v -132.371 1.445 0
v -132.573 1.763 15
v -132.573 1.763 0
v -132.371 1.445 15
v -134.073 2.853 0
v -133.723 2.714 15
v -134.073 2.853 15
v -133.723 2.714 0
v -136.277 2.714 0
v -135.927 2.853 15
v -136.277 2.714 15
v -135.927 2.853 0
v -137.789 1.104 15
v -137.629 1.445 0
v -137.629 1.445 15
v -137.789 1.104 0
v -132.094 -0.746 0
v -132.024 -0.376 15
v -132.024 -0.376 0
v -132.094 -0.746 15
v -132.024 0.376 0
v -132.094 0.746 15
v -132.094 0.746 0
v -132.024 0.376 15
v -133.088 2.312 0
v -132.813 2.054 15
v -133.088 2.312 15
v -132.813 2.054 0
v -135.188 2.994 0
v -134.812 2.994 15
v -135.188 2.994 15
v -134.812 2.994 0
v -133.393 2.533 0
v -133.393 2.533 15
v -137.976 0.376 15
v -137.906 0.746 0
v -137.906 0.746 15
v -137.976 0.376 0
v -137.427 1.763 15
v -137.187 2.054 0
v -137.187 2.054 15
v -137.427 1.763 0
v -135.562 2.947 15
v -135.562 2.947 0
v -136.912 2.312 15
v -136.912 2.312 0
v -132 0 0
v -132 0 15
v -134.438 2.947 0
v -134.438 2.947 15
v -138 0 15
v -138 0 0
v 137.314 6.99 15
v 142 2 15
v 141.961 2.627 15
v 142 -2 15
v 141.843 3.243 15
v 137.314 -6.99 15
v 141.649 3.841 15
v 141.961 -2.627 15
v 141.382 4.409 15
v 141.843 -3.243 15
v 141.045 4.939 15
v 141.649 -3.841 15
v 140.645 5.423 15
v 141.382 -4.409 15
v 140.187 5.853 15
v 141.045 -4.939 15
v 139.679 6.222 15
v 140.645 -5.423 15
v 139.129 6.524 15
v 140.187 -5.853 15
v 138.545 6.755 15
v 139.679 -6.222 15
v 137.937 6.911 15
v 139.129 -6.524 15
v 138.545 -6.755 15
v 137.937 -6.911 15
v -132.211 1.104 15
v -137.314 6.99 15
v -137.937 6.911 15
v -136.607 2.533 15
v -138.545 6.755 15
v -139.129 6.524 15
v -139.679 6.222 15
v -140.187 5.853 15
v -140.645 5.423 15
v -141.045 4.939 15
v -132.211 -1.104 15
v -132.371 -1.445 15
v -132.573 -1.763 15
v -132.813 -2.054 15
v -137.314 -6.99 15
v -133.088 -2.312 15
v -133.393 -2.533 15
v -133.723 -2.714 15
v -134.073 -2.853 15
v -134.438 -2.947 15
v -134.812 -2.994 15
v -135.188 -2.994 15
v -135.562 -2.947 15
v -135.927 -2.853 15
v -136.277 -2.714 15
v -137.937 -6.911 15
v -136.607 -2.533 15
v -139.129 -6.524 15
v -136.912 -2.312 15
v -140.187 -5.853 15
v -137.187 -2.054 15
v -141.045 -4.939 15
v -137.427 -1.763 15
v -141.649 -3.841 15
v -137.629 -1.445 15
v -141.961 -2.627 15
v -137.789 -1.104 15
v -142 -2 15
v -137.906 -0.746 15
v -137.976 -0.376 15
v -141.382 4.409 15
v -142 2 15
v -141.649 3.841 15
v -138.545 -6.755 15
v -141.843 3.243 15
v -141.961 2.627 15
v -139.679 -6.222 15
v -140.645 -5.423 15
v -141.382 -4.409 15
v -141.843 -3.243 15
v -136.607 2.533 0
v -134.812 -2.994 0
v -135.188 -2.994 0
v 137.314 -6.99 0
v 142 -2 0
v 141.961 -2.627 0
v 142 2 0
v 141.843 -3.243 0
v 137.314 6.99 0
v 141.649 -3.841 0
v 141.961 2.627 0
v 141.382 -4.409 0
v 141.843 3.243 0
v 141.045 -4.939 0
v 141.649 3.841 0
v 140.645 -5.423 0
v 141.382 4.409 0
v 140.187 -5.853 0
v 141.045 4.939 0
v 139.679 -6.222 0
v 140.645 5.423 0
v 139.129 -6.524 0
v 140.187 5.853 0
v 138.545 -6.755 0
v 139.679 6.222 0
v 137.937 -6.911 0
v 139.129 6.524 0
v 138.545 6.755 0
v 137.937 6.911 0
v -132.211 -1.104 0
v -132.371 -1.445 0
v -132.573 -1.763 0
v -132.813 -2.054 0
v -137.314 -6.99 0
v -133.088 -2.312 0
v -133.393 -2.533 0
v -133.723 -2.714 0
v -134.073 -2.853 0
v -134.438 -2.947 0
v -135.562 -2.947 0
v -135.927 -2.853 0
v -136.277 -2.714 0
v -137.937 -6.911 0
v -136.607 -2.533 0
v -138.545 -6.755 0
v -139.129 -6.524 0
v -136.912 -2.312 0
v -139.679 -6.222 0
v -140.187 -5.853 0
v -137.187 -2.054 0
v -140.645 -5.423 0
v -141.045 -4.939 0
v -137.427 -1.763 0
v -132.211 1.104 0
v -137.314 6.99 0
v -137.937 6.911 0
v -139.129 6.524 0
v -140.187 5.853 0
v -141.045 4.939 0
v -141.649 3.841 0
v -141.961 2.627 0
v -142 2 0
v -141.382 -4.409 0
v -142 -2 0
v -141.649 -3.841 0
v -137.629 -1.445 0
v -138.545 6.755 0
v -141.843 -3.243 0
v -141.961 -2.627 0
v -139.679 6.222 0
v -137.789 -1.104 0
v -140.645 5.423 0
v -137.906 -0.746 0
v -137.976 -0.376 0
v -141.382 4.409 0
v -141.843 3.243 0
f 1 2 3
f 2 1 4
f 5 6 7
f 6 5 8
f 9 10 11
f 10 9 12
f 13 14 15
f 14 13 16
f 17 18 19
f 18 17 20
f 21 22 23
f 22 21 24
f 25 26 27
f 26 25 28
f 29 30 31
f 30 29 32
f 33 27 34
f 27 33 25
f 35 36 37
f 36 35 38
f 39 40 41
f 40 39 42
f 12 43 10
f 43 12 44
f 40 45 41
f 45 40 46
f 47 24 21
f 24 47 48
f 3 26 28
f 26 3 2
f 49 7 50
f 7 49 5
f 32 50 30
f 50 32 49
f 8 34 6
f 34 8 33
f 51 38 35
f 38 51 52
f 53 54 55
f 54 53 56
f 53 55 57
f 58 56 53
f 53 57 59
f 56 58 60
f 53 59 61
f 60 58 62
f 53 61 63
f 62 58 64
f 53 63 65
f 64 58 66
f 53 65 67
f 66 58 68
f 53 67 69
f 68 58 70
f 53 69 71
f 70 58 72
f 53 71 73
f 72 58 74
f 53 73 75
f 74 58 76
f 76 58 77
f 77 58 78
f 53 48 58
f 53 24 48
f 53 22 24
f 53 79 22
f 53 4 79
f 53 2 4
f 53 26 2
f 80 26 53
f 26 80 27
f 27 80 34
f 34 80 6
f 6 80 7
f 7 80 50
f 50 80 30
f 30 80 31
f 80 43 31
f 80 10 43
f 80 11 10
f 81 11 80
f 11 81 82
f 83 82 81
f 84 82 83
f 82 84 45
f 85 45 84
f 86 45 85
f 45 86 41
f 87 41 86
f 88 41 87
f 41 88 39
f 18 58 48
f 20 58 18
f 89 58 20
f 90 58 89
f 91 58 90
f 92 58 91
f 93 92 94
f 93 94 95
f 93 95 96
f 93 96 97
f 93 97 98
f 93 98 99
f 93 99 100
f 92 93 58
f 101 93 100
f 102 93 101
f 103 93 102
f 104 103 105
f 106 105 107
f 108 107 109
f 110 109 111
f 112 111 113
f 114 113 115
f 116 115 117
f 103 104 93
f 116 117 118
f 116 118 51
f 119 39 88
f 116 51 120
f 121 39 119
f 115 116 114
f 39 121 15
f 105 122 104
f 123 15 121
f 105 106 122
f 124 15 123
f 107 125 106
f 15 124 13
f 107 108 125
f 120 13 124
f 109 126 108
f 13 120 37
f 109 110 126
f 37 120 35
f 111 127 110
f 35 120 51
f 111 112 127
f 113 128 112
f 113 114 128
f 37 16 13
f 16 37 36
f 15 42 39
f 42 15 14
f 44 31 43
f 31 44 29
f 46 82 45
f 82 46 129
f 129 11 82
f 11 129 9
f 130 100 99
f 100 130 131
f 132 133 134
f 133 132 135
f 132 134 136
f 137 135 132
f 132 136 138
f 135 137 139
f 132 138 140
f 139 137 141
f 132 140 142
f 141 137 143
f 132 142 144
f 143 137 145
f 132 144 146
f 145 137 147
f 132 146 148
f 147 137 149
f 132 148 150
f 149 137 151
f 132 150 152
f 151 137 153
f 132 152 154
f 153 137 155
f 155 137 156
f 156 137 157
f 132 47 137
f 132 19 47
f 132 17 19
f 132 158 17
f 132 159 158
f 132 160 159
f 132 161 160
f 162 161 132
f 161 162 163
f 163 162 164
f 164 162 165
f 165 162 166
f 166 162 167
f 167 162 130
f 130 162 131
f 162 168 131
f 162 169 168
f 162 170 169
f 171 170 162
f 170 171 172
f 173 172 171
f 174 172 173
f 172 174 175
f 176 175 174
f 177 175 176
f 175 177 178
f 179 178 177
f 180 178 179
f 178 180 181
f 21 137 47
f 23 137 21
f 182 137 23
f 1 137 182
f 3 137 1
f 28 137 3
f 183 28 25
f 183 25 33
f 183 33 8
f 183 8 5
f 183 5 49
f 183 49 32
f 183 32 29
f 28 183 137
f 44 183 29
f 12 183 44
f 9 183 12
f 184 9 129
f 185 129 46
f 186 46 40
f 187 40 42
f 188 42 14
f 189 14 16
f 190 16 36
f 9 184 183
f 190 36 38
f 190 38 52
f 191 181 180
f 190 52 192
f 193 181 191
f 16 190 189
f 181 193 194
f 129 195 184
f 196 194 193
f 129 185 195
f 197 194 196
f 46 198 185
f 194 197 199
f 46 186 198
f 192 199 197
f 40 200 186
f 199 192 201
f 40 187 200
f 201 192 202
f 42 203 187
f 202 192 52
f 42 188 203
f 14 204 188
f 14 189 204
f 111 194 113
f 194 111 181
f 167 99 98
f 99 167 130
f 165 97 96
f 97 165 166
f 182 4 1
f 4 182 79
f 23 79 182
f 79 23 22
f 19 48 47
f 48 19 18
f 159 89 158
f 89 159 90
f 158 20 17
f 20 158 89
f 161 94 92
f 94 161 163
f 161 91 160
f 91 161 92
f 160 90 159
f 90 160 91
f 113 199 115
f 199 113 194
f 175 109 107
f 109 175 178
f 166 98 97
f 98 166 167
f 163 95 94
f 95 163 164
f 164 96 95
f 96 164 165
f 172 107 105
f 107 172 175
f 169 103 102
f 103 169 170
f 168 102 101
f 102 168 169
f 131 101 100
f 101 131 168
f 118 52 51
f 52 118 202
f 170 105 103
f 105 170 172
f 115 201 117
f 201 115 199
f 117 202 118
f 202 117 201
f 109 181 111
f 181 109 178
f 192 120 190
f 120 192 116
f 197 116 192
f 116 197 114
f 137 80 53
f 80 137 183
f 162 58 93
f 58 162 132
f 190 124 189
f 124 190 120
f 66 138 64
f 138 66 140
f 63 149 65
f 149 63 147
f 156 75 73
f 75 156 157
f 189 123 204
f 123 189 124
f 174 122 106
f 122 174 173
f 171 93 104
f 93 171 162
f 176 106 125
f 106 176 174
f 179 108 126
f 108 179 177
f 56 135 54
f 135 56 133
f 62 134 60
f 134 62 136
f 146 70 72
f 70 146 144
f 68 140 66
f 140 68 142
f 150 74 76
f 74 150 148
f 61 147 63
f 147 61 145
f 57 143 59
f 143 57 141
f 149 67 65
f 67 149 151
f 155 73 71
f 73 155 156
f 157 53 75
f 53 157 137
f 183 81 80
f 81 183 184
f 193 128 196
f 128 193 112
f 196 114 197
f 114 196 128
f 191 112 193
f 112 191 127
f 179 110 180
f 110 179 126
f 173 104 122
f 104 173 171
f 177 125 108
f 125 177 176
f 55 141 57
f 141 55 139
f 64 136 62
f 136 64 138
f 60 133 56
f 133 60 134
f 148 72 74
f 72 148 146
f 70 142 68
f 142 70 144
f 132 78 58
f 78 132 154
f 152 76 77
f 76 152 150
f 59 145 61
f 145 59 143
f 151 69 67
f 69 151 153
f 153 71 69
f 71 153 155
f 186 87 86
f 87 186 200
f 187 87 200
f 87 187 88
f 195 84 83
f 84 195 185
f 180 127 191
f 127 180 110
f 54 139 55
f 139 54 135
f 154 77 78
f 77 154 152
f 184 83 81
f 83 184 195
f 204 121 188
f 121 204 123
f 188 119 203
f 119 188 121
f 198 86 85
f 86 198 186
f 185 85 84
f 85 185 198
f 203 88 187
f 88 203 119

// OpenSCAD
$fn = 50;


difference() {
	union() {
		hull() {
			translate(v = [-137.0000000000, 2.0000000000, 0]) {
				cylinder(h = 15, r = 5);
			}
			translate(v = [137.0000000000, 2.0000000000, 0]) {
				cylinder(h = 15, r = 5);
			}
			translate(v = [-137.0000000000, -2.0000000000, 0]) {
				cylinder(h = 15, r = 5);
			}
			translate(v = [137.0000000000, -2.0000000000, 0]) {
				cylinder(h = 15, r = 5);
			}
		}
	}
	union() {
		translate(v = [-135.0000000000, 0.0000000000, 0]) {
			cylinder(h = 15, r = 3.0000000000);
		}
		translate(v = [-135.0000000000, 0.0000000000, 0]) {
			cylinder(h = 15, r = 1.5000000000);
		}
		translate(v = [-135.0000000000, 0.0000000000, 0]) {
			cylinder(h = 15, r = 1.5000000000);
		}
		translate(v = [-135.0000000000, 0.0000000000, 0]) {
			cylinder(h = 15, r = 1.5000000000);
		}
	}
}
